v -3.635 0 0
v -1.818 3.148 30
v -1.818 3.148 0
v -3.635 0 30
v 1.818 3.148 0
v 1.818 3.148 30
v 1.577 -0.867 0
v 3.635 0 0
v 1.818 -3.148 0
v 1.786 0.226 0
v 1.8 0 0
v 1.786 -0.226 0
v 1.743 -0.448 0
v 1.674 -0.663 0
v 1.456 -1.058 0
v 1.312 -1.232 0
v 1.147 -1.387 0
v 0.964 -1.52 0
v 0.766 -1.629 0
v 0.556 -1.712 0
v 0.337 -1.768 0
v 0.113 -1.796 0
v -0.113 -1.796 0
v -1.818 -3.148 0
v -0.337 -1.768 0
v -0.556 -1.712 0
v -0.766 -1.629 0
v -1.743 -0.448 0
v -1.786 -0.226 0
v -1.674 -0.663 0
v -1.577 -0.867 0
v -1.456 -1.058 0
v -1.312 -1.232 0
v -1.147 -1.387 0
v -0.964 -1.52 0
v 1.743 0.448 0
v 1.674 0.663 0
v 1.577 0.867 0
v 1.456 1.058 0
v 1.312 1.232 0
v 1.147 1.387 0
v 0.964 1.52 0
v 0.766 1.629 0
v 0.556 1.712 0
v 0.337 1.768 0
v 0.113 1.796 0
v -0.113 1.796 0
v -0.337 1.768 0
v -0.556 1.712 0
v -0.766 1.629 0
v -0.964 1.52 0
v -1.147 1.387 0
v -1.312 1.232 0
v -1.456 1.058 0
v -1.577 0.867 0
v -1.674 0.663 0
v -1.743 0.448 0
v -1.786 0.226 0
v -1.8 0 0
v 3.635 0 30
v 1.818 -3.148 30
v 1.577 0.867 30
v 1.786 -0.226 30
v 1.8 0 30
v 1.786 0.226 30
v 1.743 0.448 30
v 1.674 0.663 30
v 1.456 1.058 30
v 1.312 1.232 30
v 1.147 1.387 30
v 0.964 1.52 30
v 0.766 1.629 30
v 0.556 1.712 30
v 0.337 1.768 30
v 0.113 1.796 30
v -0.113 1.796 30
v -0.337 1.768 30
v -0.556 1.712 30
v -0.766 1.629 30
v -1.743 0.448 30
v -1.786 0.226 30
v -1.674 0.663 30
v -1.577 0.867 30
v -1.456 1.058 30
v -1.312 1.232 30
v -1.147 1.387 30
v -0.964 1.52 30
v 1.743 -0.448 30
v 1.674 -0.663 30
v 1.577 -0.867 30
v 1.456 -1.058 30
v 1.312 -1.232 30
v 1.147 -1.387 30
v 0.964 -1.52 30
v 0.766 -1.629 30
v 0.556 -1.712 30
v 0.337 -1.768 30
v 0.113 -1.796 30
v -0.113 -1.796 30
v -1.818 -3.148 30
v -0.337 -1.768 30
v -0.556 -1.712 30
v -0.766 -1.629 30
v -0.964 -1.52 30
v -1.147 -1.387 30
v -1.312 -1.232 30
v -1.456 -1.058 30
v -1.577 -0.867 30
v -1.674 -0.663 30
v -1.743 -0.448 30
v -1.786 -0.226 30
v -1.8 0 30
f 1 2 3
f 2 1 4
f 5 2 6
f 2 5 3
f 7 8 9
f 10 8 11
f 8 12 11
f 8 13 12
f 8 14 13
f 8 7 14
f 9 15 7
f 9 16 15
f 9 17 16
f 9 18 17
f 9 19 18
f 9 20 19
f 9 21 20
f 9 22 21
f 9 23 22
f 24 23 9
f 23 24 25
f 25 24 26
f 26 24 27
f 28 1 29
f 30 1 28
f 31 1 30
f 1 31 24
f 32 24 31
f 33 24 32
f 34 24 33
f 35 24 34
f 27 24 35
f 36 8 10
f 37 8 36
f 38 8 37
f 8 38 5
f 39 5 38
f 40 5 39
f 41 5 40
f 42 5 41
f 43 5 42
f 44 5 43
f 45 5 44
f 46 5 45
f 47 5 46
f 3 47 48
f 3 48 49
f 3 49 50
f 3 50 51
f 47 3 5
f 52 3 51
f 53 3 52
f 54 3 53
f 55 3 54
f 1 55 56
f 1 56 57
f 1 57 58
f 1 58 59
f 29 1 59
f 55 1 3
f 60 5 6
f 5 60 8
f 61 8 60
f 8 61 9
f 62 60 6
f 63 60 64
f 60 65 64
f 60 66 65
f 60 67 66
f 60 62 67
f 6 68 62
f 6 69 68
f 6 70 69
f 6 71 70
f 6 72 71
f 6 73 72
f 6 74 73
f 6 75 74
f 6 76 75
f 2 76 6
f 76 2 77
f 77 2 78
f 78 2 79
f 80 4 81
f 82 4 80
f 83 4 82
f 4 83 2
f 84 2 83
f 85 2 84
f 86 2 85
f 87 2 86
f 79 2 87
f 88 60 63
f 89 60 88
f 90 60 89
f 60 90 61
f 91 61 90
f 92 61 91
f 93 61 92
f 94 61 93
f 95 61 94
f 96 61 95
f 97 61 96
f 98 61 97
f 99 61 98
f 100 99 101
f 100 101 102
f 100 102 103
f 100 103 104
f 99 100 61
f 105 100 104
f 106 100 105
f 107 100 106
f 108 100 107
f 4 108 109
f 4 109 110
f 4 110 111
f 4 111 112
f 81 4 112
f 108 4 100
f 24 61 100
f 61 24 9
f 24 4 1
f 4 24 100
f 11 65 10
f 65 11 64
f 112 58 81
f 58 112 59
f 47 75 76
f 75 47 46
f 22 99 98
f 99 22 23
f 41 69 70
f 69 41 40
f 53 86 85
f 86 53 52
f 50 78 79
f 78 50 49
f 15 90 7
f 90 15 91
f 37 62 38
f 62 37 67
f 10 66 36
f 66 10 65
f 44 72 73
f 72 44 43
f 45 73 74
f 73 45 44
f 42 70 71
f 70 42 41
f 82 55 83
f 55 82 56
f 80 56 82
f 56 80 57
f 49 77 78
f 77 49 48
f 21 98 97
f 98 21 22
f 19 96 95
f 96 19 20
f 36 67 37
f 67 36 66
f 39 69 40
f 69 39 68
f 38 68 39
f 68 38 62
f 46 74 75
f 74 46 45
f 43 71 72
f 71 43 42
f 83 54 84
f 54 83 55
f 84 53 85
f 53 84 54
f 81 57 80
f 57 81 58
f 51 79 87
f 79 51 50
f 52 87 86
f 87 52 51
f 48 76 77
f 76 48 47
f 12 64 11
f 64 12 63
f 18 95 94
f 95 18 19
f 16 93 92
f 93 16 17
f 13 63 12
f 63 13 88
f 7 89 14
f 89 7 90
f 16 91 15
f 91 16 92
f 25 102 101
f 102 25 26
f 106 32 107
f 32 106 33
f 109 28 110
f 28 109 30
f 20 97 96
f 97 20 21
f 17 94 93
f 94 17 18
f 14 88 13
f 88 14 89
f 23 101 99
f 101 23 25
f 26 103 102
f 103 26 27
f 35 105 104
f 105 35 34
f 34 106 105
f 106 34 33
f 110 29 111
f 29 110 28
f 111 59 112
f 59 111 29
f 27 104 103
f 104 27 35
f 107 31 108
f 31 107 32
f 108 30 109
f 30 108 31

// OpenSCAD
$fn = 50;


difference() {
	union() {
		translate(v = [0, 0, 0]) {
			rotate(a = [0, 0, 0]) {
				translate(v = [0, 0, 0]) {
					rotate(a = [0, 0, 0]) {
						linear_extrude(height = 30) {
							polygon(points = [[3.6351000000, 0.0000000000], [1.8175500000, 3.1480889453], [-1.8175500000, 3.1480889453], [-3.6351000000, 0.0000000000], [-1.8175500000, -3.1480889453], [1.8175500000, -3.1480889453]]);
						}
					}
				}
			}
		}
	}
	union() {
		translate(v = [0, 0, 0]) {
			rotate(a = [0, 0, 0]) {
				cylinder(h = 30, r = 1.8000000000);
			}
		}
	}
}
